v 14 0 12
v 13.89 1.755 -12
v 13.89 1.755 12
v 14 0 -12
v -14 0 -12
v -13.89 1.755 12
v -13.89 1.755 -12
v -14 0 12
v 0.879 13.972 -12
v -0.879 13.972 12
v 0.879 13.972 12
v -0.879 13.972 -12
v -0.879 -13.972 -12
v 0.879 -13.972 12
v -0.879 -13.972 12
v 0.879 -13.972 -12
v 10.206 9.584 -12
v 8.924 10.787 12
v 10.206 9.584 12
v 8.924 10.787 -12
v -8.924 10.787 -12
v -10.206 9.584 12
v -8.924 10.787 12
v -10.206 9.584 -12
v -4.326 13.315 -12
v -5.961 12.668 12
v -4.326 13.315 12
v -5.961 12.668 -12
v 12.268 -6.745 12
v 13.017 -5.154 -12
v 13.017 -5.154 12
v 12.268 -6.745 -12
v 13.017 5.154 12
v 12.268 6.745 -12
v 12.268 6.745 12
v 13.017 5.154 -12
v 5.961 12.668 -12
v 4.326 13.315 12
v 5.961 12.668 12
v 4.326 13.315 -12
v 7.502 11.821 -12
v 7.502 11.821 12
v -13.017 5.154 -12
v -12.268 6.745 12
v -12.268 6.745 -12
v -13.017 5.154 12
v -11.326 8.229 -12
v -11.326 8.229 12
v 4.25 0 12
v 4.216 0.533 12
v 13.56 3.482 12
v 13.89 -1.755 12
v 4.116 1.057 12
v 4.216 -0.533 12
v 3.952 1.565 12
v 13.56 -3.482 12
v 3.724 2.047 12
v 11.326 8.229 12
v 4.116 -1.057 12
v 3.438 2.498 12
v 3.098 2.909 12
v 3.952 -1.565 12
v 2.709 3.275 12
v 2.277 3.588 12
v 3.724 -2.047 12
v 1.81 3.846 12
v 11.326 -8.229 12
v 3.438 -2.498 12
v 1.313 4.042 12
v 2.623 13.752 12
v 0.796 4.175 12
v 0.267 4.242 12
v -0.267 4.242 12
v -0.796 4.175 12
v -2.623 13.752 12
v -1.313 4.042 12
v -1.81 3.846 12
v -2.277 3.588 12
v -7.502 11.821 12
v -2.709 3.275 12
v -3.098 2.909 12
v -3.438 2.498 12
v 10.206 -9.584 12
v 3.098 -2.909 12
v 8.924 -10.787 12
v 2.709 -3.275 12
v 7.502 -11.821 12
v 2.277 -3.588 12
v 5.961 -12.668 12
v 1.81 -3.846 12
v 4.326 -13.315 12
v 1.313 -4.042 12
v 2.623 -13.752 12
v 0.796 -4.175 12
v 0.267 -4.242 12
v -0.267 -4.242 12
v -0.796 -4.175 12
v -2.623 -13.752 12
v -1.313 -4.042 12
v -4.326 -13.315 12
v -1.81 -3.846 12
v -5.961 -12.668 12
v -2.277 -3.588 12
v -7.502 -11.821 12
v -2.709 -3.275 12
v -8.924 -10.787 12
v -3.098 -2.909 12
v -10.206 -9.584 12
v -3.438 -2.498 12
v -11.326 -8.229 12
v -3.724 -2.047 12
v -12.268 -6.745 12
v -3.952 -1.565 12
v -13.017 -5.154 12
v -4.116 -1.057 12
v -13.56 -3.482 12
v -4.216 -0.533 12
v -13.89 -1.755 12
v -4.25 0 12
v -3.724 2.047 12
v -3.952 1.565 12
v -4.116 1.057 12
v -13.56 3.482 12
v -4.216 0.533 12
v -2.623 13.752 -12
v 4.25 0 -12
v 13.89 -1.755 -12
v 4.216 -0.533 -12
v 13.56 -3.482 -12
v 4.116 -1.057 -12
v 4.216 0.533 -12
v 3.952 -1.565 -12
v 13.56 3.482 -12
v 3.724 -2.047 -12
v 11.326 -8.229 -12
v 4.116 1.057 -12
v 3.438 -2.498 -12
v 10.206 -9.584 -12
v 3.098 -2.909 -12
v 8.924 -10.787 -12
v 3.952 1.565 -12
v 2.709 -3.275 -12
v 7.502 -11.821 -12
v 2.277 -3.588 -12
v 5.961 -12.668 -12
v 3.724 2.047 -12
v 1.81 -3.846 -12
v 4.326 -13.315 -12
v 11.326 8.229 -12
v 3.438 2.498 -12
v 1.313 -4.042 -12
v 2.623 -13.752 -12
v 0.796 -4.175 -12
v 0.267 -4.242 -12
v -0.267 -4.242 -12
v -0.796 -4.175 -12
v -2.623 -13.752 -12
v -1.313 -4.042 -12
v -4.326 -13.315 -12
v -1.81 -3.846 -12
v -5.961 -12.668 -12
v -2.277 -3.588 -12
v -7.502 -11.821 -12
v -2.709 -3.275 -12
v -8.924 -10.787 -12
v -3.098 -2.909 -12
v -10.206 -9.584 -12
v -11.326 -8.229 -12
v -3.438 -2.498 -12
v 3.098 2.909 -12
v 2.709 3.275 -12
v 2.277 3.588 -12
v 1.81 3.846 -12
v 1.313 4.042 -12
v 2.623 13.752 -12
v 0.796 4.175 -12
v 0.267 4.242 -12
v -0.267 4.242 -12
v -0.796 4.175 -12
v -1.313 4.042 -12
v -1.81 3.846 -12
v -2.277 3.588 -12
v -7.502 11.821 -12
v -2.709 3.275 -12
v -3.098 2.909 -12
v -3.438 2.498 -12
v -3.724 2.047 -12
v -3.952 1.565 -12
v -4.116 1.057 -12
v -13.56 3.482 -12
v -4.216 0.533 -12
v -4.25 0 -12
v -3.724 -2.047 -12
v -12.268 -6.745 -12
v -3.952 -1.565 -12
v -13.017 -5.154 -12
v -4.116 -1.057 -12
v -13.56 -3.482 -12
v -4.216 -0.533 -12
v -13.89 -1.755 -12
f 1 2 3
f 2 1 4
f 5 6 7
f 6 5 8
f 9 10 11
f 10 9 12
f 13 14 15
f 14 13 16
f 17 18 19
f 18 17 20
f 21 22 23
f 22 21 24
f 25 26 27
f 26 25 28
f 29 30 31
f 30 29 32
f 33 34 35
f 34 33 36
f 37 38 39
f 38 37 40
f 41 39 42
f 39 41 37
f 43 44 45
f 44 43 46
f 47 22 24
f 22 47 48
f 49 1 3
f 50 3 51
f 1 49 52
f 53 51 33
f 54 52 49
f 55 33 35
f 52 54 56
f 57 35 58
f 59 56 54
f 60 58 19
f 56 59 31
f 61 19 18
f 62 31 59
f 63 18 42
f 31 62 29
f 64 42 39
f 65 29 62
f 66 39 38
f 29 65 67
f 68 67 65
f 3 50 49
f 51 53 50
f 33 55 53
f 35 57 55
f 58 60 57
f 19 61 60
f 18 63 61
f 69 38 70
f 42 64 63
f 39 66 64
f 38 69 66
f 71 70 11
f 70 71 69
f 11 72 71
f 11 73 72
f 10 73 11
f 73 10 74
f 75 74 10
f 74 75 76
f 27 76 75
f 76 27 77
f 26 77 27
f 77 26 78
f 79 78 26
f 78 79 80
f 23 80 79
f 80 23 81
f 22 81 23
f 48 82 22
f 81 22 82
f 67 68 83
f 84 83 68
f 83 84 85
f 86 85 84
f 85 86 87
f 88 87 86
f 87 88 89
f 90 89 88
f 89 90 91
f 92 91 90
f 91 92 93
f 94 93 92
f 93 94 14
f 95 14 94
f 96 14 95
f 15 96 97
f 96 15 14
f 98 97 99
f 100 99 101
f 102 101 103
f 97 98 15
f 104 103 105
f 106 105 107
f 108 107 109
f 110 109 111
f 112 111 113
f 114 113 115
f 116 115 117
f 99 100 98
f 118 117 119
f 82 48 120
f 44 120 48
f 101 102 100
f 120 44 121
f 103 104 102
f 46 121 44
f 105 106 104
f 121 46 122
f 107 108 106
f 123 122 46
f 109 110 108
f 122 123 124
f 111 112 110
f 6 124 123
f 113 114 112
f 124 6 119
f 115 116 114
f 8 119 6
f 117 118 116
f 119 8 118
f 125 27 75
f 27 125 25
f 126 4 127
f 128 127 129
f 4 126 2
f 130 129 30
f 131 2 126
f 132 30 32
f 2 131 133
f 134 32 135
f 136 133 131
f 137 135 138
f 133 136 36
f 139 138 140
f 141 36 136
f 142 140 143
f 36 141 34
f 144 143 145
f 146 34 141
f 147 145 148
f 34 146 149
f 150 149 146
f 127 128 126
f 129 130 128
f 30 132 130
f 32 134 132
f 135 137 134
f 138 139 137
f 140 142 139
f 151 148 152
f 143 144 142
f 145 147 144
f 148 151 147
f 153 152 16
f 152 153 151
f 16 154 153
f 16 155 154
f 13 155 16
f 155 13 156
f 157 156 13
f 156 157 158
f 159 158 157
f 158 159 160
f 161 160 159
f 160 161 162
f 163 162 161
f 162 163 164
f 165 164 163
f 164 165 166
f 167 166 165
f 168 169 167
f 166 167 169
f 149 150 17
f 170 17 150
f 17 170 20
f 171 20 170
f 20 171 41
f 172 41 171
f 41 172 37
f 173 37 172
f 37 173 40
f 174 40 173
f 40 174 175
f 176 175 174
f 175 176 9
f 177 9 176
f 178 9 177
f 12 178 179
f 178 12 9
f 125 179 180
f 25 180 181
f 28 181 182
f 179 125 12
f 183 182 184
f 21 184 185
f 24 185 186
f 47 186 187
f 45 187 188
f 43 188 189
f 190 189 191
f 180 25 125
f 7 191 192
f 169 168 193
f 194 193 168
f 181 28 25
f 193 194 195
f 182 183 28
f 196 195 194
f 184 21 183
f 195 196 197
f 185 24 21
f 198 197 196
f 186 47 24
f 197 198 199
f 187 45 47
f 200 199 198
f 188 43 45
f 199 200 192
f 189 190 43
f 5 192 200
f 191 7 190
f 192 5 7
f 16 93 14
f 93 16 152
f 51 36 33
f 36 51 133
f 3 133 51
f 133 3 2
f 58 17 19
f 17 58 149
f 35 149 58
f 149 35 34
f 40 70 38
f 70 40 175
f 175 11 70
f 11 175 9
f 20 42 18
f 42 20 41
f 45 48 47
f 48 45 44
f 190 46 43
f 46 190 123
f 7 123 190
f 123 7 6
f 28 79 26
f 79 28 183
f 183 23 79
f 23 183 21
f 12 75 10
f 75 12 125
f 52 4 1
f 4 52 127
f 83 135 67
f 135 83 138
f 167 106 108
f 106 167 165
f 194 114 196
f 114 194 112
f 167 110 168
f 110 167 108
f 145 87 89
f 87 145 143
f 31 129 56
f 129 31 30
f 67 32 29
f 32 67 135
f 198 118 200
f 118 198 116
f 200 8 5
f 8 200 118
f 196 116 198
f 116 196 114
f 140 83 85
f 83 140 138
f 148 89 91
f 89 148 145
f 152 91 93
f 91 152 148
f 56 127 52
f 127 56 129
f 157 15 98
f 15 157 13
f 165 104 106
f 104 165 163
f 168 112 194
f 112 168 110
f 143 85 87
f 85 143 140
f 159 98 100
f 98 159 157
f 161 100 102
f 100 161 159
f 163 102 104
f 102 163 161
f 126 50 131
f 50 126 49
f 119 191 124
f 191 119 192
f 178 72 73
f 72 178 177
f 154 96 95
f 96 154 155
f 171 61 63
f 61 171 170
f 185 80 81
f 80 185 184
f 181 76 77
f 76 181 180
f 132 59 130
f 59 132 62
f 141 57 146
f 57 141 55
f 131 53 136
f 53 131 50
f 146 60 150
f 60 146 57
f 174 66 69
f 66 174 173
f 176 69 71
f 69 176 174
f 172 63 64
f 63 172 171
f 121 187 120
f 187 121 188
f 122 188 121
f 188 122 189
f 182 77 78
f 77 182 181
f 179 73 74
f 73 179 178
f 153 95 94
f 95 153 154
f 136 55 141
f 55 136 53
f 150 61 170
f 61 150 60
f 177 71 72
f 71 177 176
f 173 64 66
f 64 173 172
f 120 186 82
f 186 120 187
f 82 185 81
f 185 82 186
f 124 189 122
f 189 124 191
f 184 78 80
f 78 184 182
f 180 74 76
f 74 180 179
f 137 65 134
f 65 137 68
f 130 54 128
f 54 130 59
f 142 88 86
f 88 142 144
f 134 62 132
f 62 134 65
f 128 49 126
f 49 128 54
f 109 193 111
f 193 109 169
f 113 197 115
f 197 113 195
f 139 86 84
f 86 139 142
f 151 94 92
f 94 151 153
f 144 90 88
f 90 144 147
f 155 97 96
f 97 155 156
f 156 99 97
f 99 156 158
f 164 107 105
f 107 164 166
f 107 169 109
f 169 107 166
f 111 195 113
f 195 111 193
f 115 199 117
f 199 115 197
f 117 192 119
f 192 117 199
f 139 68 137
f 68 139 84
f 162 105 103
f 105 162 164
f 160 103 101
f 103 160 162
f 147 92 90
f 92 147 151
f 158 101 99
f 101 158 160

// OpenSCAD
$fn = 50;


difference() {
	union() {
		translate(v = [0, 0, -12.0000000000]) {
			cylinder(h = 24, r = 14.0000000000);
		}
	}
	union() {
		translate(v = [0, 0, -100.0000000000]) {
			cylinder(h = 200, r = 4.2500000000);
		}
	}
}
